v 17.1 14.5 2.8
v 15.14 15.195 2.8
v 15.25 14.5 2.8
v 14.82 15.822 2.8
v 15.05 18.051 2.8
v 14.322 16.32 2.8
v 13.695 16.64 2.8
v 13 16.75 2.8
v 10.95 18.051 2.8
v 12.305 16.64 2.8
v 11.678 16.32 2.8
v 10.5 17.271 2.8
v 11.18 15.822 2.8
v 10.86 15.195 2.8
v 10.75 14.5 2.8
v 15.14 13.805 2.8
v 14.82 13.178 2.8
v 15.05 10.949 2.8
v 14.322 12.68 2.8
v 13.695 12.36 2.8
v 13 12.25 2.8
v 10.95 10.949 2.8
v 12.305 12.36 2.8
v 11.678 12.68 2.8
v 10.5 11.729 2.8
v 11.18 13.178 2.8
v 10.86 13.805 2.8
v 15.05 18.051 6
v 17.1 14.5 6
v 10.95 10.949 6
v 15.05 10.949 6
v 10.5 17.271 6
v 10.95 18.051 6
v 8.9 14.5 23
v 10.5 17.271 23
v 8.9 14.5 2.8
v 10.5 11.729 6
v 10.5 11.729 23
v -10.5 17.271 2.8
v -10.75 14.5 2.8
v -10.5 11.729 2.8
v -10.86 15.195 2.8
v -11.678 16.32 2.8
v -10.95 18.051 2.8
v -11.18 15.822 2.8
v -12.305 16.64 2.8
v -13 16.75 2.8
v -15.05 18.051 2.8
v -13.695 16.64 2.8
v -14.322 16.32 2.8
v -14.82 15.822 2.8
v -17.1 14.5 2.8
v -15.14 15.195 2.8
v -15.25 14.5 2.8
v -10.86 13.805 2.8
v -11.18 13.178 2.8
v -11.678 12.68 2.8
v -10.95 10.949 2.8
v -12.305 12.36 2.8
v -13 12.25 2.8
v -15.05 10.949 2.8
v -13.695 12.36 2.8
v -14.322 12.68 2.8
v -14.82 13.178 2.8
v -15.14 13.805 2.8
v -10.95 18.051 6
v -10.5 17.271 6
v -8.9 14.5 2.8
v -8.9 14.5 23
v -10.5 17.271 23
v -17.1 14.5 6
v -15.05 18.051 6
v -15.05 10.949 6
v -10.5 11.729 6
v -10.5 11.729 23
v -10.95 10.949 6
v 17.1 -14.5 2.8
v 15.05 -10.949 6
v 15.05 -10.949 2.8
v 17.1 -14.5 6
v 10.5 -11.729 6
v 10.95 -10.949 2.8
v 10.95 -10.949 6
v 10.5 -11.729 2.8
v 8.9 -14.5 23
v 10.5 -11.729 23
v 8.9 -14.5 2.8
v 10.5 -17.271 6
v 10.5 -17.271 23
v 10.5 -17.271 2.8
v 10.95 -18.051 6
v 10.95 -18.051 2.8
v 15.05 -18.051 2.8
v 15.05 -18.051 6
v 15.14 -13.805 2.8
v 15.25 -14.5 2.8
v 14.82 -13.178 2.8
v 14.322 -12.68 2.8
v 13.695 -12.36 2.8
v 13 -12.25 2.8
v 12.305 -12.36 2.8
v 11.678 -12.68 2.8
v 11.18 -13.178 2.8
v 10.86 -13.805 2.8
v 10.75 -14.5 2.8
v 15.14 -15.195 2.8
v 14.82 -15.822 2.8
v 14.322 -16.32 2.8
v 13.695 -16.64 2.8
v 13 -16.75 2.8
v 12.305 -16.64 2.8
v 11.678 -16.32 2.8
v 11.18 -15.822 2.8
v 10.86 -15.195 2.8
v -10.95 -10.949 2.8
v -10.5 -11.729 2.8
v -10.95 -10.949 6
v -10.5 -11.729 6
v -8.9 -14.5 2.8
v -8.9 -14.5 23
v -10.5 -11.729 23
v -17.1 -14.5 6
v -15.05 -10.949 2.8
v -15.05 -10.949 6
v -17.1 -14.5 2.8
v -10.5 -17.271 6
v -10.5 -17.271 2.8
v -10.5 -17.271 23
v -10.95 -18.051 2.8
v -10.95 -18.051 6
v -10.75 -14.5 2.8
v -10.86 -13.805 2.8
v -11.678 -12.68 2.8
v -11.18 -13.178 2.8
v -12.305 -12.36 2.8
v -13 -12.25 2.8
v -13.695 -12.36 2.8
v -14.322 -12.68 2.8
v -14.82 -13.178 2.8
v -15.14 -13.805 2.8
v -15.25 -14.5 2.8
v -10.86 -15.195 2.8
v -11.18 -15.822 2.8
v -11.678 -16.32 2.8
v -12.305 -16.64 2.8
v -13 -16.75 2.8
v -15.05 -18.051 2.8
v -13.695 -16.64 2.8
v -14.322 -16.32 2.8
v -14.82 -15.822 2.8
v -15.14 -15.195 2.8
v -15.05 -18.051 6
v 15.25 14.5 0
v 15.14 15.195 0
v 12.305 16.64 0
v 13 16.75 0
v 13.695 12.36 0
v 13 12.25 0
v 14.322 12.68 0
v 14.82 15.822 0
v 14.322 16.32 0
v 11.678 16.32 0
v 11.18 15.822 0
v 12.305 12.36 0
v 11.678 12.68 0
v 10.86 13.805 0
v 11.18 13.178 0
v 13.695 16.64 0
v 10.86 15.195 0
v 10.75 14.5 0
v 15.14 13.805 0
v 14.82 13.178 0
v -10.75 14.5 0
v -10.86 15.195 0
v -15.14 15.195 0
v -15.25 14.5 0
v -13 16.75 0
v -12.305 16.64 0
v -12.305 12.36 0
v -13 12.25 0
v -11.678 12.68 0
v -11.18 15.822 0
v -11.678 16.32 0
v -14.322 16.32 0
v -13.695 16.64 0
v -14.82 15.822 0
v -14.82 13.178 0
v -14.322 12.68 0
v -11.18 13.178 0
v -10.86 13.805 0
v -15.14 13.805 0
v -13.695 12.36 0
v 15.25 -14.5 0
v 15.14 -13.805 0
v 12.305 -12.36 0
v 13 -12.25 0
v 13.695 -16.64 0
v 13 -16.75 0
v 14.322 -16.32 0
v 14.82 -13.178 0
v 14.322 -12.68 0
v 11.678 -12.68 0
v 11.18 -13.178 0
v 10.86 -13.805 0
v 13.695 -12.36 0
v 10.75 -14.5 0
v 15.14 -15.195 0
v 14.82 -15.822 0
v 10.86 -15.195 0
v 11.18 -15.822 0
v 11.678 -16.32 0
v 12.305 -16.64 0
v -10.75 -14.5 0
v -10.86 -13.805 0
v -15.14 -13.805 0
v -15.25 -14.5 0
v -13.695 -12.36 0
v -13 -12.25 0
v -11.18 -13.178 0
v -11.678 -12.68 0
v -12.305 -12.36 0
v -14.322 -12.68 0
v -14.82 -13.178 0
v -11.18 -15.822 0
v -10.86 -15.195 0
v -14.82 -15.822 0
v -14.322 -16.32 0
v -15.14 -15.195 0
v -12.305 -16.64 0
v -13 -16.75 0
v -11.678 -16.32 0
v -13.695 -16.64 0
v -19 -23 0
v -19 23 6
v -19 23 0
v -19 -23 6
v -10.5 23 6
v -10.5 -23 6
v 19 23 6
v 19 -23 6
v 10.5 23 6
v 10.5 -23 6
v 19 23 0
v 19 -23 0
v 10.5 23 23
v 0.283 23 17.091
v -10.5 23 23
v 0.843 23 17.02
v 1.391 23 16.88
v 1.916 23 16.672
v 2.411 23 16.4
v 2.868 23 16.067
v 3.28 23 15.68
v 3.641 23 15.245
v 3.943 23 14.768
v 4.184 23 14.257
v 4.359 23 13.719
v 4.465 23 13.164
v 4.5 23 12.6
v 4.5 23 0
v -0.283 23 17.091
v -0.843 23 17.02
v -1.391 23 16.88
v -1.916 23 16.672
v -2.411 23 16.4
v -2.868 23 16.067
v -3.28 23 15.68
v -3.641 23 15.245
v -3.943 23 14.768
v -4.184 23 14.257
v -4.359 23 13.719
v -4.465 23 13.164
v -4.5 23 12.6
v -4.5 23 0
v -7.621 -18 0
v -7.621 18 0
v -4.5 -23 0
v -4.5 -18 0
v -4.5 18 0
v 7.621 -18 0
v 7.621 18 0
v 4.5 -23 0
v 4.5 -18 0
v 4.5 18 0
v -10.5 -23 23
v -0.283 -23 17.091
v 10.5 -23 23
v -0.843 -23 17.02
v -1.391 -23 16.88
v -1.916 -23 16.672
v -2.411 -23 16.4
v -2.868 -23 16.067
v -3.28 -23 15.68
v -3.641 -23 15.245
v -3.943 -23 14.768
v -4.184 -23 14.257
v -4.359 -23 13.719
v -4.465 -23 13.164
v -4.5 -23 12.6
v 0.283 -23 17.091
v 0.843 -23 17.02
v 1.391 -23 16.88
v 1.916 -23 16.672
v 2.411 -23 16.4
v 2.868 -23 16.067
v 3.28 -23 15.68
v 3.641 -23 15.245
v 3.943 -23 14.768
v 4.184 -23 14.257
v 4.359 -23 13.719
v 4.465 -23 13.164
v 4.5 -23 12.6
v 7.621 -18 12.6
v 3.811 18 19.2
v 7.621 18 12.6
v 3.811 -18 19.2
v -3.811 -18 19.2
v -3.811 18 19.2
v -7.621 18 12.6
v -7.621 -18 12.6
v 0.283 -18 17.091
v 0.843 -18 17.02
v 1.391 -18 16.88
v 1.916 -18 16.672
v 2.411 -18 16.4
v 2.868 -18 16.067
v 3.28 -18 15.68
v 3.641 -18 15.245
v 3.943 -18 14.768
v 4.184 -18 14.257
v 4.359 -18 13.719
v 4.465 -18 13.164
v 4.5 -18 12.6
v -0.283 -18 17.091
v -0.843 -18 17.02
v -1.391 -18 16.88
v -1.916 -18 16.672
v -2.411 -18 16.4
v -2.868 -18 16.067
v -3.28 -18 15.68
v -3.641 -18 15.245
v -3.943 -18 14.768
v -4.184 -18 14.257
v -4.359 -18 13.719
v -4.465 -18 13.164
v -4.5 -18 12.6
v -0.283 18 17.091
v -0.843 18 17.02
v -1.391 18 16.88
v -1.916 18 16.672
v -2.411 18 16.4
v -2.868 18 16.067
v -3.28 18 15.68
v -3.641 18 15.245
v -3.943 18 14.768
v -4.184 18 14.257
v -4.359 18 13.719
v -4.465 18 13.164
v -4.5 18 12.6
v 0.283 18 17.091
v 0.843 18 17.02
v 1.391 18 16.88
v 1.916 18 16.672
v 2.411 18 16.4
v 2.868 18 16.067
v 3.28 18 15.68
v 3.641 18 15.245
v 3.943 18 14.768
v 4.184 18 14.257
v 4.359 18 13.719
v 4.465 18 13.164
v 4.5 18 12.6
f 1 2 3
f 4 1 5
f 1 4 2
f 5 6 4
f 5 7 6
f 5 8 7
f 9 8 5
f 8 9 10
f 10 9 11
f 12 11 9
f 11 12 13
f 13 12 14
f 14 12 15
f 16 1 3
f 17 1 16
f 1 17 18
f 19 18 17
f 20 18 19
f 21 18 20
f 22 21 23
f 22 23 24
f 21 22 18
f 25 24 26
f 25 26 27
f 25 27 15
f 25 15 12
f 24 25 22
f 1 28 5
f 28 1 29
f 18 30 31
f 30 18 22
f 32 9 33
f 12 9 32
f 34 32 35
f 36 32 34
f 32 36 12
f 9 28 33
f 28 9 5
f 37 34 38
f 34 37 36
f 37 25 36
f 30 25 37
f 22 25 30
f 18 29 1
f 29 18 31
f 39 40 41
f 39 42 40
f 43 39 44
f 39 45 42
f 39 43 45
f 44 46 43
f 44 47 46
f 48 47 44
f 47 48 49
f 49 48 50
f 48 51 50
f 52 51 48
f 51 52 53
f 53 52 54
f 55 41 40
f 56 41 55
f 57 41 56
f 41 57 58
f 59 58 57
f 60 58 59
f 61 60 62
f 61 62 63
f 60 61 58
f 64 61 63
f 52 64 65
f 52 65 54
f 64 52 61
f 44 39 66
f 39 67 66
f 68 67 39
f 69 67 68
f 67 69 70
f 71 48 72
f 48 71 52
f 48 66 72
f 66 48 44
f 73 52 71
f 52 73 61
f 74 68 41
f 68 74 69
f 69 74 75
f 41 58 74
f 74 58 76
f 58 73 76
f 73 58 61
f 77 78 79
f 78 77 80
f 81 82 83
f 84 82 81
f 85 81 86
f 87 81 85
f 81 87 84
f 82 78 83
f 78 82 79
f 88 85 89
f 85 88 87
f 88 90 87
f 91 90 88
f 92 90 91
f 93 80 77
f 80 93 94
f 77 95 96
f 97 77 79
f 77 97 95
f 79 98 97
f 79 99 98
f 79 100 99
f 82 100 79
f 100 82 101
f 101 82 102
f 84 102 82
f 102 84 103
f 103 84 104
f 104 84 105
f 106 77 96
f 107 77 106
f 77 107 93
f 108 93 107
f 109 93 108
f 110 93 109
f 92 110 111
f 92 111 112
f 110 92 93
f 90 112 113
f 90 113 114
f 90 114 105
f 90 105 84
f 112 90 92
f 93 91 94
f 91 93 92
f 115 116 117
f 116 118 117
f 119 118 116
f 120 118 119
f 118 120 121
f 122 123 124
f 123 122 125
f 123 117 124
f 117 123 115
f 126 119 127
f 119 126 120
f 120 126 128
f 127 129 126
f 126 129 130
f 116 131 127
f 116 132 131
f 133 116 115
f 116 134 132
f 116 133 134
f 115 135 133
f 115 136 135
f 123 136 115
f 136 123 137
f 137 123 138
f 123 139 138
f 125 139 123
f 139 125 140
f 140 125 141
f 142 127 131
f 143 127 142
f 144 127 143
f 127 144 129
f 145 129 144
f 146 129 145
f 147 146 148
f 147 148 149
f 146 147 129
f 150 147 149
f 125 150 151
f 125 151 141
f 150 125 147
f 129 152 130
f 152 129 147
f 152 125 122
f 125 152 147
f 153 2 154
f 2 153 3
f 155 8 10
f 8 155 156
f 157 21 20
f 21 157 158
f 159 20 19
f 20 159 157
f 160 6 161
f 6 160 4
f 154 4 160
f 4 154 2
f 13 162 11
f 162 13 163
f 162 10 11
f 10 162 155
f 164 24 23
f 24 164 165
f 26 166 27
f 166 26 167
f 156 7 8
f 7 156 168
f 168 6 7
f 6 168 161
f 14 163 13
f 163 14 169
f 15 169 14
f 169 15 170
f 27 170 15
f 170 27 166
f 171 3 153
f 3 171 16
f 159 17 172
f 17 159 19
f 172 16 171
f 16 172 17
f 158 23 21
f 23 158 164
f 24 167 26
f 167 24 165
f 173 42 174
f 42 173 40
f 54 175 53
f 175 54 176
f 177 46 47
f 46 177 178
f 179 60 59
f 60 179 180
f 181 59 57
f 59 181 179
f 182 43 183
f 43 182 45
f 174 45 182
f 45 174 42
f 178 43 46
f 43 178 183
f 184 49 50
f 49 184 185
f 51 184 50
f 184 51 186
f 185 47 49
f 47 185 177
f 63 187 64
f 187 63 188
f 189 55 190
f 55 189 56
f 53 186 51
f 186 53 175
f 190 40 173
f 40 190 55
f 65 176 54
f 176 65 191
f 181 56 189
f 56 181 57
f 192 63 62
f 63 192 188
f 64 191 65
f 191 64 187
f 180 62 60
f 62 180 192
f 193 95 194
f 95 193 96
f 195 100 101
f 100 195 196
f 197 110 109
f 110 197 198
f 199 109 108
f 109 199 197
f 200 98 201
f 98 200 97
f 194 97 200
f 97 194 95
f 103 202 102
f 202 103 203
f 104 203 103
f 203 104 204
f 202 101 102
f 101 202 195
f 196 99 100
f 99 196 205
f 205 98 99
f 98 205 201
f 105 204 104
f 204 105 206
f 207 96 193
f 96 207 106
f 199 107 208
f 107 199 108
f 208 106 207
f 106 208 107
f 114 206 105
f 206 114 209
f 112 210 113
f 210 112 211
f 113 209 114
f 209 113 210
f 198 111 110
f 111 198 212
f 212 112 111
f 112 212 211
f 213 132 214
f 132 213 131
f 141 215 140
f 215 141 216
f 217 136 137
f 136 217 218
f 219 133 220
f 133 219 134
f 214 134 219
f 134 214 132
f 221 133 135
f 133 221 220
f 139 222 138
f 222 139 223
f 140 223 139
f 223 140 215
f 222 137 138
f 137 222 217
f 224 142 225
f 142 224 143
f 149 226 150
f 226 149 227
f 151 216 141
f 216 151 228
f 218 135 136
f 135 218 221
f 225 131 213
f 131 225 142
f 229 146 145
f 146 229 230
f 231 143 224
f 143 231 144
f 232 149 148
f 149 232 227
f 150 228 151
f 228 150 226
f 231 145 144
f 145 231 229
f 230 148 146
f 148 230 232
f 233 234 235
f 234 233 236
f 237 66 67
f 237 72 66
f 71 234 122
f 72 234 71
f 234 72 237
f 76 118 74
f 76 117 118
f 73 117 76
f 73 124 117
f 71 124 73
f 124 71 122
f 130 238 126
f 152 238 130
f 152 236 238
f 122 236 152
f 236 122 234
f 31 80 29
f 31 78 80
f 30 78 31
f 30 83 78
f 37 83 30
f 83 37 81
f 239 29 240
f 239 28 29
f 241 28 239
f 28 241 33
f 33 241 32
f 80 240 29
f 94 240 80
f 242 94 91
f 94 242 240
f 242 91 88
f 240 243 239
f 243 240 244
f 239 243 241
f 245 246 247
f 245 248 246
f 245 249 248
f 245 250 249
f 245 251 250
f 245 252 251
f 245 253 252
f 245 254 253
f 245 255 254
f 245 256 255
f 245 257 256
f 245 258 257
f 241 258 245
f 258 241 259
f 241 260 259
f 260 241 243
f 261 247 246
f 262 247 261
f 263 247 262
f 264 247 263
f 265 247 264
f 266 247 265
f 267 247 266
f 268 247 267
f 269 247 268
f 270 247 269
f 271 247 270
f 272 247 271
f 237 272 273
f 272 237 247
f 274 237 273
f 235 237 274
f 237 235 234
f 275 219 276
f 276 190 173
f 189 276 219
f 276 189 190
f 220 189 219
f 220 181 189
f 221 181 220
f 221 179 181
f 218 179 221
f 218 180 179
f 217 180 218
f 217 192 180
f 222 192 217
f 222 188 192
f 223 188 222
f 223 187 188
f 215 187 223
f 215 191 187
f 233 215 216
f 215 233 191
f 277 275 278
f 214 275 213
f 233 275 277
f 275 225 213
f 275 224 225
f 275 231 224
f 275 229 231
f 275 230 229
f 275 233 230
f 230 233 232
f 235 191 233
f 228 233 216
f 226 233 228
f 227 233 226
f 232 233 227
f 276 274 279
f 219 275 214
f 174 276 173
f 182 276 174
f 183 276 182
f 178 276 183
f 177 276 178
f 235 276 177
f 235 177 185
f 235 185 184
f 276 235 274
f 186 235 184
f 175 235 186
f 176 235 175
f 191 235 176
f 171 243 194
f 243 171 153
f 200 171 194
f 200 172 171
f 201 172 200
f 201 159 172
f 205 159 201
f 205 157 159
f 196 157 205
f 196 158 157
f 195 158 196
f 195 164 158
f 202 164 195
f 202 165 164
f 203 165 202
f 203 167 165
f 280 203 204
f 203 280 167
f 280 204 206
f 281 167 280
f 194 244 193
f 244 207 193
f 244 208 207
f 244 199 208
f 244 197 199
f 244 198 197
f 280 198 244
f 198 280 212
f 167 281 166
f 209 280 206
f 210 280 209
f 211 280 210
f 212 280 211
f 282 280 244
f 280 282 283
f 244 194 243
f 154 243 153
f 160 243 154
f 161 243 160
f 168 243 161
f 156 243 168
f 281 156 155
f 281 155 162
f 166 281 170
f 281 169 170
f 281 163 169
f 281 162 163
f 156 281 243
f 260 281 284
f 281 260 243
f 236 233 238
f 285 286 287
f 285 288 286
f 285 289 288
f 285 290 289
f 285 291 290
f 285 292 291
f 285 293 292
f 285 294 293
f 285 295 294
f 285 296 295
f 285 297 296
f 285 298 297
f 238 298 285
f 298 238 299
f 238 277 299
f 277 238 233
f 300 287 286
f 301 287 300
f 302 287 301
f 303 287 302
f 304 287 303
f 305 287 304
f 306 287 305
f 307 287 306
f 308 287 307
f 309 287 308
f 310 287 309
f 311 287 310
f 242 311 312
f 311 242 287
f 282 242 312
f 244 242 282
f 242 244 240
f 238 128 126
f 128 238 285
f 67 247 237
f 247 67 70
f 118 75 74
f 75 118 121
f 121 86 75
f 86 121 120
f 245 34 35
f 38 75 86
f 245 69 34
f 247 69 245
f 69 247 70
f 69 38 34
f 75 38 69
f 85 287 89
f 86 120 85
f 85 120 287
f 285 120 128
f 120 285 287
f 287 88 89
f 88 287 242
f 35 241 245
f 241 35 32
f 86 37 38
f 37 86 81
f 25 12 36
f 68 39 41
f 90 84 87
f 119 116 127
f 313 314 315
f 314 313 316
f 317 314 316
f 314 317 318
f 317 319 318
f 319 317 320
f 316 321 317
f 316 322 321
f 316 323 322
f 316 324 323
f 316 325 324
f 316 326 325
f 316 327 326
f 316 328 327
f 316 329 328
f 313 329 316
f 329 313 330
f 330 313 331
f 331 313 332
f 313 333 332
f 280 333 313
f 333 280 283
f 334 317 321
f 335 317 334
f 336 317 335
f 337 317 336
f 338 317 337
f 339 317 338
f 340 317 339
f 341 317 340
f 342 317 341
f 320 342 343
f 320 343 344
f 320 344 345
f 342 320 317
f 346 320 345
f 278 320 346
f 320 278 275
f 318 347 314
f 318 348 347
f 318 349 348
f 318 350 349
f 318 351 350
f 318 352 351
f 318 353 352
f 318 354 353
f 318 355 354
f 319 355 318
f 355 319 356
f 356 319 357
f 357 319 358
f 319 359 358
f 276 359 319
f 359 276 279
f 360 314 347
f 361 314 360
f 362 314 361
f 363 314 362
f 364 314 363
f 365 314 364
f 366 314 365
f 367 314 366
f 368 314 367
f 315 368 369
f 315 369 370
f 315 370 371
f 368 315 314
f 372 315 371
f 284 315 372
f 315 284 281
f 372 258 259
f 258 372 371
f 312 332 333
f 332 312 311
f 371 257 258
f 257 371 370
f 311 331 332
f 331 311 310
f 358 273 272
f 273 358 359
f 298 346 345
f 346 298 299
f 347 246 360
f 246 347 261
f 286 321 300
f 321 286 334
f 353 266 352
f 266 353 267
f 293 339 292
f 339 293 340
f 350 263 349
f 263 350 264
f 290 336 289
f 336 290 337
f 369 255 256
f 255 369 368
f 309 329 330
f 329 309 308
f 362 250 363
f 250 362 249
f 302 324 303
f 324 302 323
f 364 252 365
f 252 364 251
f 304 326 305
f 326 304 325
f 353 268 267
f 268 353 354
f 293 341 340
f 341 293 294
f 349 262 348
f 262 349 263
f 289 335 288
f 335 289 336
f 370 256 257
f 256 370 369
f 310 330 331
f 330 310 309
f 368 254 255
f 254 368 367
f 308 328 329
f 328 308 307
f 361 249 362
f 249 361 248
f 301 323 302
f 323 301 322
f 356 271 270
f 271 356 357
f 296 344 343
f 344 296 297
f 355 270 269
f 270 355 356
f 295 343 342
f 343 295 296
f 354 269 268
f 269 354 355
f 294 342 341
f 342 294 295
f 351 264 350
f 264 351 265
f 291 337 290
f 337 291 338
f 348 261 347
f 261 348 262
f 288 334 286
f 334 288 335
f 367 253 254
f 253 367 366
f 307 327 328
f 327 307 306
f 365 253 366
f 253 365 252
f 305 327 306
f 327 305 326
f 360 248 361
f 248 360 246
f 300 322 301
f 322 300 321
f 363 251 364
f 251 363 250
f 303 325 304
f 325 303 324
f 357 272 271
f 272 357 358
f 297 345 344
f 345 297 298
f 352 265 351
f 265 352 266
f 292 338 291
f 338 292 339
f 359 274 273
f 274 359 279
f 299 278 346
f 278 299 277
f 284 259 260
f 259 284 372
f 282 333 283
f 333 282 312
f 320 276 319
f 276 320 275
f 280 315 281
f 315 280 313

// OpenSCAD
// Hexagon Nut Holder
// Inspired/derived from:
// http://www.thingiverse.com/thing:22065

// Which is derived from:
// http://www.thingiverse.com/thing:14942
// http://www.thingiverse.com/thing:14814
// And is a drop-in replacement for:
// http://www.thingiverse.com/thing:10287


// screw/nut dimensions
// http://www.fairburyfastener.com/xdims_metric_nuts.htm
screw_dia = 4.5;	// M3 = 3 mm, M4 = 4 mm - orig. 3.4
nut_dia = 8.2;		// M3 = 6 mm, M4 = 7.7 mm - orig. 6.5
nut_height = 3.2; 	// M3 = 2.3 mm, M4 = 3 mm - orig. 3

// main body dimensions
body_width = 21;
gap_width = 10;
body_height = 23;	// original height: 22 mm
body_length = 40;
epsilon = 0.1; // small tolerance used for CSG subtraction/addition

screw_elevation = body_height-1.5;

// mounting plate dimensions
plate_height = 6;
plate_length = body_length+6;
plate_width = 38;
screw_space_x = 26;
screw_space_y = 29;
box_length = plate_length;

// Height from bottom of plate to the hex nut
// 6 mm from top flat to plate
plateMargin = 6; // originally 2 mm

// hexagon coupling
couplingNutWidth = 13;	// distance from flat to flat = 13mm
couplingNutLength = 35; // length of the coupling nut = 35mm 
couplingExtraMargin = 0.2; // margin when printing (0.3). TODO: can be even smaller. 0.2?
couplingExtraLength = 1.0; // margin when printing (0.3).

threadRod_margin = 1.0; // 0.5 is very tight

// hole for the threaded rod
threadRodDia = 8 + threadRod_margin; // 8 mm


HexagonNutHolder();


// Calculate Nut_Flats, Nut_Rad and Nut_Length
function CalculateHexagonNutVariables(couplingNutWidth = 13, numSides = 6) = 
    [
    // Nut_Flats is the measure across the flats including margin
    couplingNutWidth + couplingExtraMargin, 
    
    // Nut_Rad is half the Nut_Flats divided by Cos(180/sides)
    (couplingNutWidth + couplingExtraMargin)/2 
    / cos(180/numSides),
   
    // Length of the coupling nut = 35mm + 1 mm margin
    couplingNutLength + couplingExtraLength];

module HexagonNutHole() {

    // Hexagon = 6 sides
	Num_Sides = 6;			
    	    
    // Calculate Nut_Flats and Nut_Rad
    hexVariables = CalculateHexagonNutVariables();    
    Nut_Flats = hexVariables[0];
    Nut_Rad = hexVariables[1];
    Nut_Length = hexVariables[2];
    	
	// Hex nut hole	
	translate([0,0,Nut_Flats/2+plateMargin]) rotate([90,0,0]) cylinder(r=Nut_Rad,h=Nut_Length,$fn=Num_Sides, center=true);
}

module nut_traps(nut_height=nut_height) {
    // nut traps
    translate([screw_space_x/2,screw_space_y/2,plate_height-nut_height])
    cylinder(r=nut_dia/2, h=nut_height+epsilon, $fn=6);
    translate([-screw_space_x/2,screw_space_y/2,plate_height-nut_height])
    cylinder(r=nut_dia/2, h=nut_height+epsilon, $fn=6);
    translate([screw_space_x/2,-screw_space_y/2,plate_height-nut_height])
    cylinder(r=nut_dia/2, h=nut_height+epsilon, $fn=6);
    translate([-screw_space_x/2,-screw_space_y/2,plate_height-nut_height])
    cylinder(r=nut_dia/2, h=nut_height+epsilon, $fn=6);
}

module screw_holes() {
    // screw holes
    translate([screw_space_x/2,screw_space_y/2,-epsilon])
    cylinder(r=screw_dia/2, h=plate_height+epsilon, $fn=20);
    translate([-screw_space_x/2,screw_space_y/2,-epsilon])
    cylinder(r=screw_dia/2, h=plate_height+epsilon, $fn=20);
    translate([screw_space_x/2,-screw_space_y/2,-epsilon])
    cylinder(r=screw_dia/2, h=plate_height+epsilon, $fn=20);
    translate([-screw_space_x/2,-screw_space_y/2,-epsilon])
    cylinder(r=screw_dia/2, h=plate_height+epsilon, $fn=20);        
}

module mount_plate() {
	difference()
	{
		// bottom plate
		translate([-plate_width/2,-plate_length/2,0])
		cube([plate_width,plate_length,plate_height]);

		union() {
            nut_traps();
            screw_holes();
		}		
	}
}

module HexagonNutHolder() {
	// main body
	difference()
	{
		union()
		{
			// bottom mount plate
			mount_plate();

			// main trap
			translate([-body_width/2,-(box_length/2),0]) cube([body_width,box_length,body_height]);
		}
		
		// hole for the coupling or hexagon bolt
		HexagonNutHole();

        // Calculate Nut_Flats and Nut_Rad
        hexVariables = CalculateHexagonNutVariables();
        Nut_Flats = hexVariables[0];
        Nut_Rad = hexVariables[1];
        Nut_Length = hexVariables[2];
        
        // threaded rod
        translate([0,0,Nut_Flats/2+plateMargin]) rotate([90,0,0]) cylinder(r=threadRodDia/2,h=plate_length+2*epsilon,$fn=50, center=true);
		
        // room to insert the threaded rod
        gap = 20;
        translate([0,0,Nut_Flats/2+plateMargin-gap/2])
		cube([threadRodDia,plate_length+2*epsilon,gap],center=true);
        
		// top gap
		translate([0,0,Nut_Flats/2+plateMargin-gap/2])
		cube([Nut_Rad*2,Nut_Length,gap],center=true);
        
        // make room for the nuts
        translate([0,0,body_height-nut_height])
        nut_traps(nut_height=body_height);
	}
}

//!HexagonNutHole();
